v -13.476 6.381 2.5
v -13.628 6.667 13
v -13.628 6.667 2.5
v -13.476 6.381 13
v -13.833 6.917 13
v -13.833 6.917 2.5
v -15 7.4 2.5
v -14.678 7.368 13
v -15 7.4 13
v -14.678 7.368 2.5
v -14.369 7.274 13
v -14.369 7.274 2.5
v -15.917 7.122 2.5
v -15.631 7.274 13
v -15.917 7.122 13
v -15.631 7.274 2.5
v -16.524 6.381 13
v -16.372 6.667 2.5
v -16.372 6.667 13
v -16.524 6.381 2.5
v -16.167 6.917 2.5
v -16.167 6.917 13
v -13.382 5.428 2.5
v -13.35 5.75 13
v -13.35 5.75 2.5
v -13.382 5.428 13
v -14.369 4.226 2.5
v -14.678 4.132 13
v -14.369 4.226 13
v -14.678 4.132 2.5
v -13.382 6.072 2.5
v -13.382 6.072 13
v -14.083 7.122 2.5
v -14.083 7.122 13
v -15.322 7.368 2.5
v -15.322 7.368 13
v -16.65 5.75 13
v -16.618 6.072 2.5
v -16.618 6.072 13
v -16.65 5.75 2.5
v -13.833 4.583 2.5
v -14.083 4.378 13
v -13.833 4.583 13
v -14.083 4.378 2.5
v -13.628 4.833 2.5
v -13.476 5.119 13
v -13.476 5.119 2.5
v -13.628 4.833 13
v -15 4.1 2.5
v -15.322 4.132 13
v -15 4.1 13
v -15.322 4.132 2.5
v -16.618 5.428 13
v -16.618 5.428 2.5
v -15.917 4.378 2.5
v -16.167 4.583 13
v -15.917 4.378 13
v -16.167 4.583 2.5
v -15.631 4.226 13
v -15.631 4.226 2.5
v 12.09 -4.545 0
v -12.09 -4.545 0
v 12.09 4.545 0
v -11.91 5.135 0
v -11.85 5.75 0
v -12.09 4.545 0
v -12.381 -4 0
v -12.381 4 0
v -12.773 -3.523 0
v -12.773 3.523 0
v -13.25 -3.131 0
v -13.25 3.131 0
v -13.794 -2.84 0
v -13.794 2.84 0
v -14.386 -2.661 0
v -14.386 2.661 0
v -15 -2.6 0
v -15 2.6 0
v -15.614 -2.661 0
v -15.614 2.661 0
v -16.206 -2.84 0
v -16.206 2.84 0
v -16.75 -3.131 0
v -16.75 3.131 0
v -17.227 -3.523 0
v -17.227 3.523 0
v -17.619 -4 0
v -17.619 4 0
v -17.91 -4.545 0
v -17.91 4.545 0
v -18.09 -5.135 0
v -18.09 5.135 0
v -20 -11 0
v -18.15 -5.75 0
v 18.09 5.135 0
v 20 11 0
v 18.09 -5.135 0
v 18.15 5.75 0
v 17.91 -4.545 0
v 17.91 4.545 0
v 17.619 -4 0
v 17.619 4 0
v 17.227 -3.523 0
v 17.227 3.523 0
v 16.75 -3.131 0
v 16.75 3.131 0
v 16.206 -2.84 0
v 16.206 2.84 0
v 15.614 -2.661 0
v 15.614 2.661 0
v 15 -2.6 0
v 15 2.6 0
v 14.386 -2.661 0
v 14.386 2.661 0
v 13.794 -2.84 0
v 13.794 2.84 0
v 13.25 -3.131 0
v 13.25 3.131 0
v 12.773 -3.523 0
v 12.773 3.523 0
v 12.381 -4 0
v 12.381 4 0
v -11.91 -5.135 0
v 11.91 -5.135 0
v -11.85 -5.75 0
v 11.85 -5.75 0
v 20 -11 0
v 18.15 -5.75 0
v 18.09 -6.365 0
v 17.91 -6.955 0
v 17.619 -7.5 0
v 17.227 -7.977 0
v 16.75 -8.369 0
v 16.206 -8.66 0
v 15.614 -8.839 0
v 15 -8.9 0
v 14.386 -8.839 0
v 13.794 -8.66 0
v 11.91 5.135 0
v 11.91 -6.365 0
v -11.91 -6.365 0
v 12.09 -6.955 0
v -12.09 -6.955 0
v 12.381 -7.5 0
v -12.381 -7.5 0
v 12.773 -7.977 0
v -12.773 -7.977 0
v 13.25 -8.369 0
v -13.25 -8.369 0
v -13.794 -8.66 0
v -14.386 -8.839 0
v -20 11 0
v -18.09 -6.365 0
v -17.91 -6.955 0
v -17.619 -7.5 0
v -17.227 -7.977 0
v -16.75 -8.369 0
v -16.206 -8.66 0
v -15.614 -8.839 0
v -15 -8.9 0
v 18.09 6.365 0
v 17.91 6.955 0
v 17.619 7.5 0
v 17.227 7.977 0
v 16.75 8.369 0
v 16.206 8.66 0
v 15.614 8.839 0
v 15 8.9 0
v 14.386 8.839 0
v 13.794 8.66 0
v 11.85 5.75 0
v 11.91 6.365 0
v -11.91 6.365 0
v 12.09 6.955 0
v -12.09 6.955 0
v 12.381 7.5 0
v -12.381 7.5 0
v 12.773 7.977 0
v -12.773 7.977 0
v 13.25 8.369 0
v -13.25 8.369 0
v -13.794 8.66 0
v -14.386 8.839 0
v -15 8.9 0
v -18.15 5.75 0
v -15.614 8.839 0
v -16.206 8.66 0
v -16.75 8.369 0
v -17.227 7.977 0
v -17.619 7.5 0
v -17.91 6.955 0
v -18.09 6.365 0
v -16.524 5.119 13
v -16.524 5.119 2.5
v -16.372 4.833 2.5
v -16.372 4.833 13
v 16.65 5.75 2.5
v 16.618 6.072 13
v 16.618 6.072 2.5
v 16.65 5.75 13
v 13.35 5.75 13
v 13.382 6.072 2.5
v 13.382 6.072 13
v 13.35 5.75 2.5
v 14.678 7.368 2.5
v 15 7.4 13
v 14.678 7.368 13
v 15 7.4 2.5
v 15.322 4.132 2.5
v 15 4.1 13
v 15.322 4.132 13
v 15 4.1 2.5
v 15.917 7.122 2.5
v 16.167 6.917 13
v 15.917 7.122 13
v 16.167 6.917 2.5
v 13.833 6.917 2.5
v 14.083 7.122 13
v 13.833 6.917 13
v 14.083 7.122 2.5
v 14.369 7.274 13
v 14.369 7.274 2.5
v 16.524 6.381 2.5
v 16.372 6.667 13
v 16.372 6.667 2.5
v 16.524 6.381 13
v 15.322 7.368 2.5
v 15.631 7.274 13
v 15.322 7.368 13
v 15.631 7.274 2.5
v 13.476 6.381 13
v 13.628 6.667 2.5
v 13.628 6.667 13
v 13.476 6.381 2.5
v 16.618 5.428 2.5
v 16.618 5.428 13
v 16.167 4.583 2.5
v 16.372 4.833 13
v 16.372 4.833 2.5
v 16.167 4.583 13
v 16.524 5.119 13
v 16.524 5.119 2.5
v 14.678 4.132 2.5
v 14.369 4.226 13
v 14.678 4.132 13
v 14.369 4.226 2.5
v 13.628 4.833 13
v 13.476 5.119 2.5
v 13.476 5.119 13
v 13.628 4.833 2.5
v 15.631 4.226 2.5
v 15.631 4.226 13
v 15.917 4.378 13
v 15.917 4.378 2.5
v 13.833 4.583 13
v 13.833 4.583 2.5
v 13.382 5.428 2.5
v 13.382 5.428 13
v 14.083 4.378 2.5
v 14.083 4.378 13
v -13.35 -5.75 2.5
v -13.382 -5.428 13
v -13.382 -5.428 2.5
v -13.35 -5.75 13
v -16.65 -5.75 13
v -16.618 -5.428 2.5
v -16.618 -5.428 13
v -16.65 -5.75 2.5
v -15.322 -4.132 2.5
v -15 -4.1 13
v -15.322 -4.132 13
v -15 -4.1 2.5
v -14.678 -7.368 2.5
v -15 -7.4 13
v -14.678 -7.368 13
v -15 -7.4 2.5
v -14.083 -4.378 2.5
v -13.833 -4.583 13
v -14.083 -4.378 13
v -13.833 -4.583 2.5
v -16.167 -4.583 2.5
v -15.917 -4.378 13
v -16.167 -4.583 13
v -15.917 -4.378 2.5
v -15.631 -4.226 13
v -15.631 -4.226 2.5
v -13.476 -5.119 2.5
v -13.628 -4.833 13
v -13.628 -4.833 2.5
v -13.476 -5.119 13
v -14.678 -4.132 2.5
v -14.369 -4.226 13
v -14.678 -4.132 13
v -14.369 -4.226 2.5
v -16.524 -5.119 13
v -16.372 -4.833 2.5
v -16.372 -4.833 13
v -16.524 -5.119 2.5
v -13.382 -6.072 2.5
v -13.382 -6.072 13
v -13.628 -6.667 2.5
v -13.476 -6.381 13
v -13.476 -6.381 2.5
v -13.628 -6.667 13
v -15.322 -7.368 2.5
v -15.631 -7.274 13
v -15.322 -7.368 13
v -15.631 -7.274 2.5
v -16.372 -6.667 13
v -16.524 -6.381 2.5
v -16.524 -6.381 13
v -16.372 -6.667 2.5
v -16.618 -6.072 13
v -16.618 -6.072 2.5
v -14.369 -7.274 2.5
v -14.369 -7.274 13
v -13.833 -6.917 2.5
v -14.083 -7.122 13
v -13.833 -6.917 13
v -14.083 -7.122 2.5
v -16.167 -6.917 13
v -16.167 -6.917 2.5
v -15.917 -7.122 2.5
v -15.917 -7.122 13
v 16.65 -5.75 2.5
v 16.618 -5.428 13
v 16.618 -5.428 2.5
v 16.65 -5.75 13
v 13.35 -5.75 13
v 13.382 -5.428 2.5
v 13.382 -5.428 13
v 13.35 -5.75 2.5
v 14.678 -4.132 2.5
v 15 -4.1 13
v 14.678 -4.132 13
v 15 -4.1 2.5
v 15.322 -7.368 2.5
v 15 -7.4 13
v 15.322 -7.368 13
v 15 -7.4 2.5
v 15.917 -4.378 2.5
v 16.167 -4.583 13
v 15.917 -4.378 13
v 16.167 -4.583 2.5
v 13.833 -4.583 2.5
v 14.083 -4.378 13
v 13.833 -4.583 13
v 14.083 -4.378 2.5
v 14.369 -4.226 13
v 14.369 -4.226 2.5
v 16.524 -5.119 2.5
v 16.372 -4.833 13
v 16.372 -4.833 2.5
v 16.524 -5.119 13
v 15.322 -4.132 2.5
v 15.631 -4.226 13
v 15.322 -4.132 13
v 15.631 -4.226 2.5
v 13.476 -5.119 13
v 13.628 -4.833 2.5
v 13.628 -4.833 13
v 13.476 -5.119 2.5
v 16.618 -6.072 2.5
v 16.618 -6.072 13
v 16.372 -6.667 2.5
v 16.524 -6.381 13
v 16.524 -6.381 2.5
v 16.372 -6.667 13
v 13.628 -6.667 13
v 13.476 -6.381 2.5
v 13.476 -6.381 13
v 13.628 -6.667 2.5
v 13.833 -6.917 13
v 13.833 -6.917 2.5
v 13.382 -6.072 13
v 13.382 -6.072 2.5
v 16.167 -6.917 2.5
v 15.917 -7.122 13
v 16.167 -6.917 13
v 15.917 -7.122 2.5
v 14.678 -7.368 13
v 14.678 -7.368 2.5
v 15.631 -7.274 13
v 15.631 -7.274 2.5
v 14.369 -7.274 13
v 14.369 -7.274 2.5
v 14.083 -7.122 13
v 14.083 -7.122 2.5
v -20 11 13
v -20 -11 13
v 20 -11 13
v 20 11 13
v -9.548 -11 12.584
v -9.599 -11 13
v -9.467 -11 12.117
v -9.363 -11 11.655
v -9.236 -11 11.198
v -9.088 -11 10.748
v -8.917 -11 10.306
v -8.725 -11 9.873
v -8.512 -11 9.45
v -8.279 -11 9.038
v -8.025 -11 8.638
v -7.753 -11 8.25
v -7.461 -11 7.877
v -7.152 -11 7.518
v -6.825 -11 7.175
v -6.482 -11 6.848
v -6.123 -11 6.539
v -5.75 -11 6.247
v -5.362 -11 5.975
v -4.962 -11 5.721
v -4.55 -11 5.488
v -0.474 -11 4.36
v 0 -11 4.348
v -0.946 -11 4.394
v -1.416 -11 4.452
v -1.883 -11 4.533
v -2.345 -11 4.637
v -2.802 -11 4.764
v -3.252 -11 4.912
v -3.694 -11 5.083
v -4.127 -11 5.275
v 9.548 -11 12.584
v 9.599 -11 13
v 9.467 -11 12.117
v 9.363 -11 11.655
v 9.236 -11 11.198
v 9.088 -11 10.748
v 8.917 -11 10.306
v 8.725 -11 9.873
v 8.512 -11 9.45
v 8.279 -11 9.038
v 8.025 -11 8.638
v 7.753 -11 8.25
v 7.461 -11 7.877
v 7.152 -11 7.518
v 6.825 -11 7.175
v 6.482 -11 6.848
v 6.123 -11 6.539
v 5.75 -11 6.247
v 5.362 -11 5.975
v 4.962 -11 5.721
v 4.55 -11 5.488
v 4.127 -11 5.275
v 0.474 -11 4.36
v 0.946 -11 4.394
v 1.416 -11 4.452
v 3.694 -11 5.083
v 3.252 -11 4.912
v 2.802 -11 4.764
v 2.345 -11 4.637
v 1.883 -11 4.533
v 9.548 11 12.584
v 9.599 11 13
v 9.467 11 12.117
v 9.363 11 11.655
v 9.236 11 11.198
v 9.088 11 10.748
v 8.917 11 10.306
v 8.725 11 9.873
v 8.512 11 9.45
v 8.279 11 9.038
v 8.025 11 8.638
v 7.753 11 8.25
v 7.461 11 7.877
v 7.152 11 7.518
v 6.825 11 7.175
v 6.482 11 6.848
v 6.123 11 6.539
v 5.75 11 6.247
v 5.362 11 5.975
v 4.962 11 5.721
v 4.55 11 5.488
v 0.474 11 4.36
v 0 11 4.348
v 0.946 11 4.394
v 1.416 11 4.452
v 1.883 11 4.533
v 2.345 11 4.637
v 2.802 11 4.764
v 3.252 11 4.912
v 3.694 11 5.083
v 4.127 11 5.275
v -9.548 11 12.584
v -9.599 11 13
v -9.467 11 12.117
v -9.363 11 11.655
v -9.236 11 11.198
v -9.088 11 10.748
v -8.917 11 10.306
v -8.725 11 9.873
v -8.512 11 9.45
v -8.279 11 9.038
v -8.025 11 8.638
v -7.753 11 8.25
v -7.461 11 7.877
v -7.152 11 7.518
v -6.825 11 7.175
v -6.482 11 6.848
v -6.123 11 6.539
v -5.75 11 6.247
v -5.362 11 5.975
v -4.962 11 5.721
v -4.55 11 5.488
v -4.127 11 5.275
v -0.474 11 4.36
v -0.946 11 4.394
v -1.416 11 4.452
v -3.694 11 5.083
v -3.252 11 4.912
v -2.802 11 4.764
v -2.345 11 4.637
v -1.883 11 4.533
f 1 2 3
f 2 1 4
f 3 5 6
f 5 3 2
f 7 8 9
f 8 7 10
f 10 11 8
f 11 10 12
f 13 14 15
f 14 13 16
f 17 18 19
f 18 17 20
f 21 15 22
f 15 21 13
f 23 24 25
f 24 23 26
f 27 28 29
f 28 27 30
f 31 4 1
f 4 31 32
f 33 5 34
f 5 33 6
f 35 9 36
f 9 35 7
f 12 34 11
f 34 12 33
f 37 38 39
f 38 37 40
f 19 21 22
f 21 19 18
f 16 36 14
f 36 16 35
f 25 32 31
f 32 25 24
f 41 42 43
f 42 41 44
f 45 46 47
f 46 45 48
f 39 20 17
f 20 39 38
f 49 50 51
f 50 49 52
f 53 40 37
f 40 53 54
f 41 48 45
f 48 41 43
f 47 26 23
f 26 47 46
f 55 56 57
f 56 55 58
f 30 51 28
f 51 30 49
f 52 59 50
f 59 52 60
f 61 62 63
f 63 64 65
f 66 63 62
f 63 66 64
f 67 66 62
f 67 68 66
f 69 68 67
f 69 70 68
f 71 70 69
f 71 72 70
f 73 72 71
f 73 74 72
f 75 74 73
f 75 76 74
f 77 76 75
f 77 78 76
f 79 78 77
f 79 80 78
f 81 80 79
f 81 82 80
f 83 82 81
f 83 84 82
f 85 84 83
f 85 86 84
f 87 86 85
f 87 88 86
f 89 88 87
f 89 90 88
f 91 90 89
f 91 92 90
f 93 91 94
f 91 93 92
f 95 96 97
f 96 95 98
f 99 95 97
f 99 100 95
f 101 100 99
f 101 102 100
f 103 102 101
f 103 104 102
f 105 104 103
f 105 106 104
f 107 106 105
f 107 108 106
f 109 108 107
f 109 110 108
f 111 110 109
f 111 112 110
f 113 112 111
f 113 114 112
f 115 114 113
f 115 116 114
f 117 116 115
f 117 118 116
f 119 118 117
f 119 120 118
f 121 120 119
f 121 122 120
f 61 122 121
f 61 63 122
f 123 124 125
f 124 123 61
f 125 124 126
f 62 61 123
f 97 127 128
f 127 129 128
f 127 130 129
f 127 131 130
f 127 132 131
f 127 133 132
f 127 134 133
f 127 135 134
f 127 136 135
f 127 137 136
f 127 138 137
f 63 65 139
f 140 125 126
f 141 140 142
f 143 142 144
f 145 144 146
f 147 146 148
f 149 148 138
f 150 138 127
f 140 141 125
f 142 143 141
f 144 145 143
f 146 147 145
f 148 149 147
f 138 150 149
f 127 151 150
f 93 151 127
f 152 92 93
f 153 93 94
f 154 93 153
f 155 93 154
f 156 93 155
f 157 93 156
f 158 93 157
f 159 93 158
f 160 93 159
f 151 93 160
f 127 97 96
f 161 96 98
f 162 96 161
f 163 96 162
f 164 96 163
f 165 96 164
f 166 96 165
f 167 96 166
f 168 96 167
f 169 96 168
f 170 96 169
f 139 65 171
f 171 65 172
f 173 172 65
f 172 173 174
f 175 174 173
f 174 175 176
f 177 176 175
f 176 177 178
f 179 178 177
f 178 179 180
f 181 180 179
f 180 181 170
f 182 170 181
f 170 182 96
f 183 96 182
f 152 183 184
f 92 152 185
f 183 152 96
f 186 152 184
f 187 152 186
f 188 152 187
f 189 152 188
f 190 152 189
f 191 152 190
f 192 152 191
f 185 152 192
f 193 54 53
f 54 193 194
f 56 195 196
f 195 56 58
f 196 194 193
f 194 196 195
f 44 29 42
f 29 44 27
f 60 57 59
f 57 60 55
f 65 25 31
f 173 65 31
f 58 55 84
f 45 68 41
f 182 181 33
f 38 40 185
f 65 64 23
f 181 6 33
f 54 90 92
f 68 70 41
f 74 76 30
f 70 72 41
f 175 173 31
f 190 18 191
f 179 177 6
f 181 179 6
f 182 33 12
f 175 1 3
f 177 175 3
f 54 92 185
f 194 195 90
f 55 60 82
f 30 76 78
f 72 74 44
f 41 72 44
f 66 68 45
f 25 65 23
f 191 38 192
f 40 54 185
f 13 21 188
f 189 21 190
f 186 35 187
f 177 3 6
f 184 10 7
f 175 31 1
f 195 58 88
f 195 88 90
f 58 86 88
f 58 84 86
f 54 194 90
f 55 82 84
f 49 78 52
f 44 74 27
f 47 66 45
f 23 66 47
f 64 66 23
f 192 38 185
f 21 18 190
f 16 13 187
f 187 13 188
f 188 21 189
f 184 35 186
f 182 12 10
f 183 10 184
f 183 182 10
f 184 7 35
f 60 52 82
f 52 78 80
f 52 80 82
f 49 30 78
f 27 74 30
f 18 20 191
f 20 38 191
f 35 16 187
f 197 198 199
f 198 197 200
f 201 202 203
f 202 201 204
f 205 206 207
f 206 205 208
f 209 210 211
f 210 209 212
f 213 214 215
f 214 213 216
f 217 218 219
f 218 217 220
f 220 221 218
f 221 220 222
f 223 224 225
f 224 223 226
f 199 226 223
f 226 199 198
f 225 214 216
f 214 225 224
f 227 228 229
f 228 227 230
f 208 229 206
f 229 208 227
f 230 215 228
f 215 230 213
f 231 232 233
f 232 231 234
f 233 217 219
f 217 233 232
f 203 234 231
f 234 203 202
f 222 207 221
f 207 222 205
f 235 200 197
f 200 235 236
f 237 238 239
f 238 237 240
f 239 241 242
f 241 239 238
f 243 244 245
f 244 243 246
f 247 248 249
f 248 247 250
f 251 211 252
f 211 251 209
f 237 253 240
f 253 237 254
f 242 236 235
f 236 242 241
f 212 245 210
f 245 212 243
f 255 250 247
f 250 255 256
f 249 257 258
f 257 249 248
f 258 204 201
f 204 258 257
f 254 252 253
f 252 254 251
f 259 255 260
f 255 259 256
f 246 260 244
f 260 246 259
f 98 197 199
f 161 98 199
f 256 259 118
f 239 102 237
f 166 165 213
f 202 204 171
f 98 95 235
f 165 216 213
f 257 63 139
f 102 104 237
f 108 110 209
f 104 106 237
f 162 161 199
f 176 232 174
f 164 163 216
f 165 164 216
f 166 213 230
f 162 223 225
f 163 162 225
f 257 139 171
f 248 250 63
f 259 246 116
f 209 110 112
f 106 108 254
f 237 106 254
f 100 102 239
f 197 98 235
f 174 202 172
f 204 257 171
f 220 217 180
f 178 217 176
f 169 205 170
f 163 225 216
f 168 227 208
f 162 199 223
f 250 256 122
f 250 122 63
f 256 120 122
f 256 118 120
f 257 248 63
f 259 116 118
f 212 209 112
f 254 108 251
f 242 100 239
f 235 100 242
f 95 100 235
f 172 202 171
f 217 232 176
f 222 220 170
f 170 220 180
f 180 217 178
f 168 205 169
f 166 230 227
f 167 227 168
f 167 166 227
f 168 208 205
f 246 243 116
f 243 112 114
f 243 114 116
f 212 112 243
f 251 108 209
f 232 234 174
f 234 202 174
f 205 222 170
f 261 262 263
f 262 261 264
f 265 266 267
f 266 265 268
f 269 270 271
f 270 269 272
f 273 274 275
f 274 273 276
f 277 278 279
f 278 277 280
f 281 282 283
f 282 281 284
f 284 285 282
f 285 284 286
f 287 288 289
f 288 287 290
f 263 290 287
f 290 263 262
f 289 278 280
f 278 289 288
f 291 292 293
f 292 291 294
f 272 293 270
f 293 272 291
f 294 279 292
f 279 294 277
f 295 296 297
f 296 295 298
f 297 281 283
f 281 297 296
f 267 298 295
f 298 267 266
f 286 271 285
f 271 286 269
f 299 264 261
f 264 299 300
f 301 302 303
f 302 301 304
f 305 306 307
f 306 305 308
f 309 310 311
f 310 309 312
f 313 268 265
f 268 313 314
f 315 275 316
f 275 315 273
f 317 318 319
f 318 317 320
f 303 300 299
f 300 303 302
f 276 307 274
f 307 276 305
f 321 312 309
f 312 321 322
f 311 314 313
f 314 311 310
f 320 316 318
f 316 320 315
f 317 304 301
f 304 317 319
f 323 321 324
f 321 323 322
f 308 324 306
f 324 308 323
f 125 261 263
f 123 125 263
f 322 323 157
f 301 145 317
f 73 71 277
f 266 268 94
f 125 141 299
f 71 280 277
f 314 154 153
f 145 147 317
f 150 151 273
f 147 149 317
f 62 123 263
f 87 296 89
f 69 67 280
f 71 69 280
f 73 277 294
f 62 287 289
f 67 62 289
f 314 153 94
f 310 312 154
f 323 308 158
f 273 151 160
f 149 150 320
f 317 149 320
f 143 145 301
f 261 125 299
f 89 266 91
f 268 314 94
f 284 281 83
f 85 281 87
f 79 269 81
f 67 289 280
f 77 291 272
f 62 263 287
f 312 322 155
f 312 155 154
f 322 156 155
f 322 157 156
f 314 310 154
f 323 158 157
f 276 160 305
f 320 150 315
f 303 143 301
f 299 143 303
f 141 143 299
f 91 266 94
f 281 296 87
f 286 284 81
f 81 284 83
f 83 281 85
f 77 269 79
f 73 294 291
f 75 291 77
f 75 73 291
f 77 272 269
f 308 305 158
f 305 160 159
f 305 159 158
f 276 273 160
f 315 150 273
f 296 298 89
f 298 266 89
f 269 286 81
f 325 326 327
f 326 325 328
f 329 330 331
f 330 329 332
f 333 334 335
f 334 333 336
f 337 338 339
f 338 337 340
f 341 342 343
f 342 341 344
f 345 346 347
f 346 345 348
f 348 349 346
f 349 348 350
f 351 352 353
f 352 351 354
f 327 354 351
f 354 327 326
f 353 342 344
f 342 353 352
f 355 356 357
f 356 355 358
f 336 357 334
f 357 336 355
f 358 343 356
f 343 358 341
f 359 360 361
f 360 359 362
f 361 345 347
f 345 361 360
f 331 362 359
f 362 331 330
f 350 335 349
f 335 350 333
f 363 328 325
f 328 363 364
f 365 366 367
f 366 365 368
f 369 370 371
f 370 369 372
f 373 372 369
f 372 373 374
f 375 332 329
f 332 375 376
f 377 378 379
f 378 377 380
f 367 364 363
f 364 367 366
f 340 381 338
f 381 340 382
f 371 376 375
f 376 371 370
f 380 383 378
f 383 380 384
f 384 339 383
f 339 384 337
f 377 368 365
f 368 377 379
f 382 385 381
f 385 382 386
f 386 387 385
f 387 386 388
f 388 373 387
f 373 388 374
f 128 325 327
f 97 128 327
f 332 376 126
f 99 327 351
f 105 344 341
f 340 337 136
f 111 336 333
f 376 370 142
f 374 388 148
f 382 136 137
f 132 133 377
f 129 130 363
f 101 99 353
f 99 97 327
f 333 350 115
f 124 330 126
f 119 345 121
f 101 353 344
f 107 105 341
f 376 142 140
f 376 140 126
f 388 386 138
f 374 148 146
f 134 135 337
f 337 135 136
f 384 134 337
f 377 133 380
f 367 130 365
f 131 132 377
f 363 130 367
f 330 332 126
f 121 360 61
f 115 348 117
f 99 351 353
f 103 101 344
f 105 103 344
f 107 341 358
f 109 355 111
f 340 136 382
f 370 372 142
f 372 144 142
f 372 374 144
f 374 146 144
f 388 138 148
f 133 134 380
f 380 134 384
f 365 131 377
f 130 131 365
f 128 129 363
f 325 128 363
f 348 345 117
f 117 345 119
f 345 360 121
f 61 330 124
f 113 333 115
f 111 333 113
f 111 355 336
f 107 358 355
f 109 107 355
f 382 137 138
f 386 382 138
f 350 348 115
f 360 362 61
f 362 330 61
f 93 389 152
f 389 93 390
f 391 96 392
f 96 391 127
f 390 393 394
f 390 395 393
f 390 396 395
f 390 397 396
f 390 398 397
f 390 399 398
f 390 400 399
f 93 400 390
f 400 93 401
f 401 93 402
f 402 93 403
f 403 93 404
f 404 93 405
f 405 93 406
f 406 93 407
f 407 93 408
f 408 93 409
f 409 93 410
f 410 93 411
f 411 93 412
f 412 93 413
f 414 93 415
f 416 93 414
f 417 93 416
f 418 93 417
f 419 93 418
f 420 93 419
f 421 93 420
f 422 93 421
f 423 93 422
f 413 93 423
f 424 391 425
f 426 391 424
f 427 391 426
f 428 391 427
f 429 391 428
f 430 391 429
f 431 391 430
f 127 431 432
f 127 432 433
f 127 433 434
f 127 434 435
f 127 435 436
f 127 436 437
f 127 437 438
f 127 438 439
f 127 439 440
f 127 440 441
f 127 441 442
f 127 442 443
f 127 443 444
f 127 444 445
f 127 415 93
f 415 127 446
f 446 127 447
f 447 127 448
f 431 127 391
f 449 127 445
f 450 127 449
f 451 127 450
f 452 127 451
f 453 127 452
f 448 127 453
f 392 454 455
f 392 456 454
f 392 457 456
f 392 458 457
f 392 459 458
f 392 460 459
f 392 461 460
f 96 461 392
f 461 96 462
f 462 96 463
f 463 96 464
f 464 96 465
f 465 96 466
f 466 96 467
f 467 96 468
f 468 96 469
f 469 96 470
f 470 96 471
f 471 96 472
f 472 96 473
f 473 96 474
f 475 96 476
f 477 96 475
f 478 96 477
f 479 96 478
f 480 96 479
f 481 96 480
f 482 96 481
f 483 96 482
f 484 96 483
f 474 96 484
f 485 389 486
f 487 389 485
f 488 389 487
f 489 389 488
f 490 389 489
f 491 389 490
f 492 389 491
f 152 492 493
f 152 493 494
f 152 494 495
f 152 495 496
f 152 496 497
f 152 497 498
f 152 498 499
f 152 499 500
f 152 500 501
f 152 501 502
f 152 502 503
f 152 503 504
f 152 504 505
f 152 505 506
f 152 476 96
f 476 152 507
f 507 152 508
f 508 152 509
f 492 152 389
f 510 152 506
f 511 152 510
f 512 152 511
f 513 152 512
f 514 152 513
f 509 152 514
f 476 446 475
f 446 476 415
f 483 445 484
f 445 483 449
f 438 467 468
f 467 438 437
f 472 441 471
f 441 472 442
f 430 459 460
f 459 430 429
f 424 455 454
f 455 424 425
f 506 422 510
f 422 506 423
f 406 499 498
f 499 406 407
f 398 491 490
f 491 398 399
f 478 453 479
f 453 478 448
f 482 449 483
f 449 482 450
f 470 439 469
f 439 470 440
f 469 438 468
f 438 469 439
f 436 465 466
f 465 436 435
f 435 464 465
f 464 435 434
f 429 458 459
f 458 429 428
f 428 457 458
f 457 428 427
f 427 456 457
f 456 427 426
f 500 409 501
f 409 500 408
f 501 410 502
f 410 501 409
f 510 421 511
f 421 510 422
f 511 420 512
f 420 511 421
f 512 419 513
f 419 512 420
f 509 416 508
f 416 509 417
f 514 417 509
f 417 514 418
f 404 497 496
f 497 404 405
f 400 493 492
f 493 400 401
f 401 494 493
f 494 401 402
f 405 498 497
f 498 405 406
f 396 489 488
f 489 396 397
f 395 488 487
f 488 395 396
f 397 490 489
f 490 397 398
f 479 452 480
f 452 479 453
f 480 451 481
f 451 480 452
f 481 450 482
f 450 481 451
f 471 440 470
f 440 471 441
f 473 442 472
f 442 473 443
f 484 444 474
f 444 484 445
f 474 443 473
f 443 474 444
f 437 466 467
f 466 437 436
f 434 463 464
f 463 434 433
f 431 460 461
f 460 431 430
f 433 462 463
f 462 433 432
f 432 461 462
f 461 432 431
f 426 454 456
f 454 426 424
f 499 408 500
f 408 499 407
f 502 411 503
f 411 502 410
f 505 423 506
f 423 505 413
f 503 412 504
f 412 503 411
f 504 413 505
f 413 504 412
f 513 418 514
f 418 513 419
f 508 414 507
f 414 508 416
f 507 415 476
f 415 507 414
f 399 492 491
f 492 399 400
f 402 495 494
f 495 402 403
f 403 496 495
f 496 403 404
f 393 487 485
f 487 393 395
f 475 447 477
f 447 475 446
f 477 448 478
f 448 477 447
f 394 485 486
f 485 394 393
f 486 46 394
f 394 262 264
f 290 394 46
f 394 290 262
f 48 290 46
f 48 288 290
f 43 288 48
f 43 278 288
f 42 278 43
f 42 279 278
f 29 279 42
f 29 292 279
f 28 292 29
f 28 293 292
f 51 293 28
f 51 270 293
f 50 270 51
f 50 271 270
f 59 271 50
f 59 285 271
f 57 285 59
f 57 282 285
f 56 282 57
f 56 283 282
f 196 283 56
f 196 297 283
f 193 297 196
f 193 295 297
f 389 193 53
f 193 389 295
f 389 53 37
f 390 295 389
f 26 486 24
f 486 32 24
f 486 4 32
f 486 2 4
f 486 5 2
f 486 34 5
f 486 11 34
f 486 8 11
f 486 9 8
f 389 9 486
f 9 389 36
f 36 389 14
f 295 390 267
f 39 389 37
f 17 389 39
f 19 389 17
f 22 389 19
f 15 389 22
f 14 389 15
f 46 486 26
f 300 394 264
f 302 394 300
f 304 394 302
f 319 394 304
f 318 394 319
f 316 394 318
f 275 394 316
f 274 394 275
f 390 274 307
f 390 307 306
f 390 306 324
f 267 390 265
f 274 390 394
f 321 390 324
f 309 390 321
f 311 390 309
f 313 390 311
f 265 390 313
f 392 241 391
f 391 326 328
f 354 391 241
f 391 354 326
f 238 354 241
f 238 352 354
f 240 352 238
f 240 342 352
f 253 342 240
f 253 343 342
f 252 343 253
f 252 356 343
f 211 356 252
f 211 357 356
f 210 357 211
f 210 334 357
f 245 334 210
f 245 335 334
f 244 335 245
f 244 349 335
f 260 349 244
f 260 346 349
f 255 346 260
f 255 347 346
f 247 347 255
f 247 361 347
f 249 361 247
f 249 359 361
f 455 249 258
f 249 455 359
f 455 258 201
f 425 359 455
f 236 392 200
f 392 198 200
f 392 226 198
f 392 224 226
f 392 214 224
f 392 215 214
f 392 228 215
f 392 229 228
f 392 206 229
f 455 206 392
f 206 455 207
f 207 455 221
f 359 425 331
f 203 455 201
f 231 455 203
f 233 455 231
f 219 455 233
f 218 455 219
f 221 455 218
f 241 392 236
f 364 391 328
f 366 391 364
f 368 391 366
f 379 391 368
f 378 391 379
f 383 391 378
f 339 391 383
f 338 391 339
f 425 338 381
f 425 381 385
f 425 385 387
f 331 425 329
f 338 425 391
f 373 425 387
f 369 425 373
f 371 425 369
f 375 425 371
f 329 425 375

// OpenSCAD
difference() {
  tilt_block();
  translate([0,0,13])
  cube_center([100,100,100]);
}

module triangle() {
scale([1,1,1])
rotate([0,-90,90])
linear_extrude(height = 1, center = true, convexity = 10, twist = 0)
polygon(points=[[0,0],[1,0],[0,1]]);
}

module tilt_block() {
rotate([0,0,0]) {
difference() {
    cube_center([40,22,14]);
    translate([0,0,14])
    rotate([90,0,0])
    cylinder(d=0.76*25.4,h=100,center=true,$fn=128);
    
    translate([-15,11.5/2,0]) {
    cylinder(d=3.3,h=50,$fn=32);
    cylinder(d1=6.3,d2=3.3,h=2.5,$fn=32);
    }
    translate([15,11.5/2,0]) {
    cylinder(d=3.3,h=50,$fn=32);
    cylinder(d1=6.3,d2=3.3,h=2.5,$fn=32);
    }
    translate([-15,-11.5/2,0]) {
    cylinder(d=3.3,h=50,$fn=32);
    cylinder(d1=6.3,d2=3.3,h=2.5,$fn=32);
    }
    translate([15,-11.5/2,0]) {
    cylinder(d=3.3,h=50,$fn=32);
    cylinder(d1=6.3,d2=3.3,h=2.5,$fn=32);
    }
}

}
}


module cube_center(dims) {
    translate([-dims[0]/2, -dims[1]/2, 0])
    cube(dims);
}
